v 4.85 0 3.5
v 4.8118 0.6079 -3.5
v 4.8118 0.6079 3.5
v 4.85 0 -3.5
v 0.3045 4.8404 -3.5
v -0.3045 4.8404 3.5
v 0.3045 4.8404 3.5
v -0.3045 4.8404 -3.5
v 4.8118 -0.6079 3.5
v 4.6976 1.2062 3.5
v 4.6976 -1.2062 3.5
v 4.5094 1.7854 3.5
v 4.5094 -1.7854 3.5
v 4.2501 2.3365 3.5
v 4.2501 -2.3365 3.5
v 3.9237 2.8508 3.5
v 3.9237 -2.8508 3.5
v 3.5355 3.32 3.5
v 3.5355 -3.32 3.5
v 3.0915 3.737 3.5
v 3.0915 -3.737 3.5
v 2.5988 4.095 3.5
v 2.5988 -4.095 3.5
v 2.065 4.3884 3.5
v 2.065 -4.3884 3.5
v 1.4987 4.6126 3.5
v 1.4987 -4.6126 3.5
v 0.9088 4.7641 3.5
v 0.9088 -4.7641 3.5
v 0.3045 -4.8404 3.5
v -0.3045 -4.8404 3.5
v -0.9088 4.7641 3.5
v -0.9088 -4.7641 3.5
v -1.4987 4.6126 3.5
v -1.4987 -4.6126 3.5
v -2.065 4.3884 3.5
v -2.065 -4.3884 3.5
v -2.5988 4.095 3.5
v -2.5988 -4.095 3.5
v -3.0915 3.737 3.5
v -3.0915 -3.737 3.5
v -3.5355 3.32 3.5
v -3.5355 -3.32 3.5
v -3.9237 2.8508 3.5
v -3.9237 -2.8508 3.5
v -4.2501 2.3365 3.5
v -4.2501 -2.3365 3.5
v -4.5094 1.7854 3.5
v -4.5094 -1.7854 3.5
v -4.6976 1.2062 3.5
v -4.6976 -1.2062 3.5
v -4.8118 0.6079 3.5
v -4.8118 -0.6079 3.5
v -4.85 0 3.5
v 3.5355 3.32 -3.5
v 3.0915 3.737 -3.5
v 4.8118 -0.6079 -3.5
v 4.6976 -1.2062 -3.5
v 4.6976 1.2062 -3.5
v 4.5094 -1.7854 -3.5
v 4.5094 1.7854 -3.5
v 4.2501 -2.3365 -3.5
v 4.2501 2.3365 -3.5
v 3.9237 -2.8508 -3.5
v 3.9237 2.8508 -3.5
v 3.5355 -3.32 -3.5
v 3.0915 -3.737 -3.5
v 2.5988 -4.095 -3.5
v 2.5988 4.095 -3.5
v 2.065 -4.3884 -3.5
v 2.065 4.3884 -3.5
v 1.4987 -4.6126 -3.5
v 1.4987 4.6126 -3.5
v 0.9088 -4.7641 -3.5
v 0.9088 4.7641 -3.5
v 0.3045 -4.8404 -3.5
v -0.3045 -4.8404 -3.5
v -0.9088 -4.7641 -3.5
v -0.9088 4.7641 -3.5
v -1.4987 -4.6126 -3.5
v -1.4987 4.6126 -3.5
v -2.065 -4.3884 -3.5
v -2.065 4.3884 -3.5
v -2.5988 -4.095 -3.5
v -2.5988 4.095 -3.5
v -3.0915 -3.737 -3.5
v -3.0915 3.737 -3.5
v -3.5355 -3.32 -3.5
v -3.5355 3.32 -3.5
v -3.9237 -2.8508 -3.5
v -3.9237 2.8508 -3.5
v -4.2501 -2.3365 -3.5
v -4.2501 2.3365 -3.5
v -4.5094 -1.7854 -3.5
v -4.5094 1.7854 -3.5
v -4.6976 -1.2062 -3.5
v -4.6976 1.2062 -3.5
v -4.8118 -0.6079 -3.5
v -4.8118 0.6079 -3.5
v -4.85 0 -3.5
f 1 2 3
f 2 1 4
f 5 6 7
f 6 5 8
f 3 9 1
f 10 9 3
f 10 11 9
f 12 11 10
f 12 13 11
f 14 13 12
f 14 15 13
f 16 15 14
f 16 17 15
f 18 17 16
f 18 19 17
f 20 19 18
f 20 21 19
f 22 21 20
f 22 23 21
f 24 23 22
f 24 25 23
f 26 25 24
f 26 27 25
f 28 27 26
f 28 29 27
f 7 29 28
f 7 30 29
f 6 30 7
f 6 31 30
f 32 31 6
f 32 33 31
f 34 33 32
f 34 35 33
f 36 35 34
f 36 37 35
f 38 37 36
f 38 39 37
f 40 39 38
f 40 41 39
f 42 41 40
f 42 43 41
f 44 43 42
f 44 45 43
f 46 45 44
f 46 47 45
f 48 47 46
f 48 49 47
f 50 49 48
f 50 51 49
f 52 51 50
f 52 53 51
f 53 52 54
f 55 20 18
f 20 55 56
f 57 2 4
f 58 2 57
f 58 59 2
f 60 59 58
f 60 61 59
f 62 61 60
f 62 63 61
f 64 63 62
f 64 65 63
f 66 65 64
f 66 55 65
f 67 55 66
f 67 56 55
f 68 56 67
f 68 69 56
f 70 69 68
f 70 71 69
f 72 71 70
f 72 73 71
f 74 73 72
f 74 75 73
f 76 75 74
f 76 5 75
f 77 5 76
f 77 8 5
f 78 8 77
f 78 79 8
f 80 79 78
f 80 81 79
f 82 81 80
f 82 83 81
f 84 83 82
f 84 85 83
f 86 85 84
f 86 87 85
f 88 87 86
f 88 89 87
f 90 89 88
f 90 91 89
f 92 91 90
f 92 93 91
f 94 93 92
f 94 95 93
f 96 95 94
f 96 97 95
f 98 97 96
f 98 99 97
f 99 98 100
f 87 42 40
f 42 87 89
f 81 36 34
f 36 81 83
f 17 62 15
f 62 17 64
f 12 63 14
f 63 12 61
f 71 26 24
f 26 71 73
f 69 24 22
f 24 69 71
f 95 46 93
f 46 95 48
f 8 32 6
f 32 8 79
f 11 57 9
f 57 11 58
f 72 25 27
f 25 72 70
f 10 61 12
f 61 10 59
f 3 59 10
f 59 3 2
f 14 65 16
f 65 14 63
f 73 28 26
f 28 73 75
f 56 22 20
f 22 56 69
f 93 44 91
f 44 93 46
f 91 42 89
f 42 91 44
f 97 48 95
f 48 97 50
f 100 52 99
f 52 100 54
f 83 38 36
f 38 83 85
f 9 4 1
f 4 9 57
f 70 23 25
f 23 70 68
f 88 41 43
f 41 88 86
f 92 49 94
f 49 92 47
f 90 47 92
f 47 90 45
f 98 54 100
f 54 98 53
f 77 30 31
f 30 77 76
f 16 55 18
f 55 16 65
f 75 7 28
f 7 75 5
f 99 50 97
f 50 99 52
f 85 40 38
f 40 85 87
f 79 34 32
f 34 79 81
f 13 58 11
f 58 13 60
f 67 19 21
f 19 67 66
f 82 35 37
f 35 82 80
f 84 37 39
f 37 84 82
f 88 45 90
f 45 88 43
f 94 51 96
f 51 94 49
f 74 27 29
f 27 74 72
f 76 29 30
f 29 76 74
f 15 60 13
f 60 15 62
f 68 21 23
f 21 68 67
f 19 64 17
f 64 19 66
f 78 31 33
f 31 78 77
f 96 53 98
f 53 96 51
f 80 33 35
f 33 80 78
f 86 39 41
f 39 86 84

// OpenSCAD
$fn = 50;


difference() {
	union() {
		translate(v = [0, 0, -3.5000000000]) {
			cylinder(h = 7, r = 4.8500000000);
		}
	}
	union() {
		translate(v = [0, 0, -100.0000000000]) {
			cylinder(h = 200, r = 0);
		}
	}
}
